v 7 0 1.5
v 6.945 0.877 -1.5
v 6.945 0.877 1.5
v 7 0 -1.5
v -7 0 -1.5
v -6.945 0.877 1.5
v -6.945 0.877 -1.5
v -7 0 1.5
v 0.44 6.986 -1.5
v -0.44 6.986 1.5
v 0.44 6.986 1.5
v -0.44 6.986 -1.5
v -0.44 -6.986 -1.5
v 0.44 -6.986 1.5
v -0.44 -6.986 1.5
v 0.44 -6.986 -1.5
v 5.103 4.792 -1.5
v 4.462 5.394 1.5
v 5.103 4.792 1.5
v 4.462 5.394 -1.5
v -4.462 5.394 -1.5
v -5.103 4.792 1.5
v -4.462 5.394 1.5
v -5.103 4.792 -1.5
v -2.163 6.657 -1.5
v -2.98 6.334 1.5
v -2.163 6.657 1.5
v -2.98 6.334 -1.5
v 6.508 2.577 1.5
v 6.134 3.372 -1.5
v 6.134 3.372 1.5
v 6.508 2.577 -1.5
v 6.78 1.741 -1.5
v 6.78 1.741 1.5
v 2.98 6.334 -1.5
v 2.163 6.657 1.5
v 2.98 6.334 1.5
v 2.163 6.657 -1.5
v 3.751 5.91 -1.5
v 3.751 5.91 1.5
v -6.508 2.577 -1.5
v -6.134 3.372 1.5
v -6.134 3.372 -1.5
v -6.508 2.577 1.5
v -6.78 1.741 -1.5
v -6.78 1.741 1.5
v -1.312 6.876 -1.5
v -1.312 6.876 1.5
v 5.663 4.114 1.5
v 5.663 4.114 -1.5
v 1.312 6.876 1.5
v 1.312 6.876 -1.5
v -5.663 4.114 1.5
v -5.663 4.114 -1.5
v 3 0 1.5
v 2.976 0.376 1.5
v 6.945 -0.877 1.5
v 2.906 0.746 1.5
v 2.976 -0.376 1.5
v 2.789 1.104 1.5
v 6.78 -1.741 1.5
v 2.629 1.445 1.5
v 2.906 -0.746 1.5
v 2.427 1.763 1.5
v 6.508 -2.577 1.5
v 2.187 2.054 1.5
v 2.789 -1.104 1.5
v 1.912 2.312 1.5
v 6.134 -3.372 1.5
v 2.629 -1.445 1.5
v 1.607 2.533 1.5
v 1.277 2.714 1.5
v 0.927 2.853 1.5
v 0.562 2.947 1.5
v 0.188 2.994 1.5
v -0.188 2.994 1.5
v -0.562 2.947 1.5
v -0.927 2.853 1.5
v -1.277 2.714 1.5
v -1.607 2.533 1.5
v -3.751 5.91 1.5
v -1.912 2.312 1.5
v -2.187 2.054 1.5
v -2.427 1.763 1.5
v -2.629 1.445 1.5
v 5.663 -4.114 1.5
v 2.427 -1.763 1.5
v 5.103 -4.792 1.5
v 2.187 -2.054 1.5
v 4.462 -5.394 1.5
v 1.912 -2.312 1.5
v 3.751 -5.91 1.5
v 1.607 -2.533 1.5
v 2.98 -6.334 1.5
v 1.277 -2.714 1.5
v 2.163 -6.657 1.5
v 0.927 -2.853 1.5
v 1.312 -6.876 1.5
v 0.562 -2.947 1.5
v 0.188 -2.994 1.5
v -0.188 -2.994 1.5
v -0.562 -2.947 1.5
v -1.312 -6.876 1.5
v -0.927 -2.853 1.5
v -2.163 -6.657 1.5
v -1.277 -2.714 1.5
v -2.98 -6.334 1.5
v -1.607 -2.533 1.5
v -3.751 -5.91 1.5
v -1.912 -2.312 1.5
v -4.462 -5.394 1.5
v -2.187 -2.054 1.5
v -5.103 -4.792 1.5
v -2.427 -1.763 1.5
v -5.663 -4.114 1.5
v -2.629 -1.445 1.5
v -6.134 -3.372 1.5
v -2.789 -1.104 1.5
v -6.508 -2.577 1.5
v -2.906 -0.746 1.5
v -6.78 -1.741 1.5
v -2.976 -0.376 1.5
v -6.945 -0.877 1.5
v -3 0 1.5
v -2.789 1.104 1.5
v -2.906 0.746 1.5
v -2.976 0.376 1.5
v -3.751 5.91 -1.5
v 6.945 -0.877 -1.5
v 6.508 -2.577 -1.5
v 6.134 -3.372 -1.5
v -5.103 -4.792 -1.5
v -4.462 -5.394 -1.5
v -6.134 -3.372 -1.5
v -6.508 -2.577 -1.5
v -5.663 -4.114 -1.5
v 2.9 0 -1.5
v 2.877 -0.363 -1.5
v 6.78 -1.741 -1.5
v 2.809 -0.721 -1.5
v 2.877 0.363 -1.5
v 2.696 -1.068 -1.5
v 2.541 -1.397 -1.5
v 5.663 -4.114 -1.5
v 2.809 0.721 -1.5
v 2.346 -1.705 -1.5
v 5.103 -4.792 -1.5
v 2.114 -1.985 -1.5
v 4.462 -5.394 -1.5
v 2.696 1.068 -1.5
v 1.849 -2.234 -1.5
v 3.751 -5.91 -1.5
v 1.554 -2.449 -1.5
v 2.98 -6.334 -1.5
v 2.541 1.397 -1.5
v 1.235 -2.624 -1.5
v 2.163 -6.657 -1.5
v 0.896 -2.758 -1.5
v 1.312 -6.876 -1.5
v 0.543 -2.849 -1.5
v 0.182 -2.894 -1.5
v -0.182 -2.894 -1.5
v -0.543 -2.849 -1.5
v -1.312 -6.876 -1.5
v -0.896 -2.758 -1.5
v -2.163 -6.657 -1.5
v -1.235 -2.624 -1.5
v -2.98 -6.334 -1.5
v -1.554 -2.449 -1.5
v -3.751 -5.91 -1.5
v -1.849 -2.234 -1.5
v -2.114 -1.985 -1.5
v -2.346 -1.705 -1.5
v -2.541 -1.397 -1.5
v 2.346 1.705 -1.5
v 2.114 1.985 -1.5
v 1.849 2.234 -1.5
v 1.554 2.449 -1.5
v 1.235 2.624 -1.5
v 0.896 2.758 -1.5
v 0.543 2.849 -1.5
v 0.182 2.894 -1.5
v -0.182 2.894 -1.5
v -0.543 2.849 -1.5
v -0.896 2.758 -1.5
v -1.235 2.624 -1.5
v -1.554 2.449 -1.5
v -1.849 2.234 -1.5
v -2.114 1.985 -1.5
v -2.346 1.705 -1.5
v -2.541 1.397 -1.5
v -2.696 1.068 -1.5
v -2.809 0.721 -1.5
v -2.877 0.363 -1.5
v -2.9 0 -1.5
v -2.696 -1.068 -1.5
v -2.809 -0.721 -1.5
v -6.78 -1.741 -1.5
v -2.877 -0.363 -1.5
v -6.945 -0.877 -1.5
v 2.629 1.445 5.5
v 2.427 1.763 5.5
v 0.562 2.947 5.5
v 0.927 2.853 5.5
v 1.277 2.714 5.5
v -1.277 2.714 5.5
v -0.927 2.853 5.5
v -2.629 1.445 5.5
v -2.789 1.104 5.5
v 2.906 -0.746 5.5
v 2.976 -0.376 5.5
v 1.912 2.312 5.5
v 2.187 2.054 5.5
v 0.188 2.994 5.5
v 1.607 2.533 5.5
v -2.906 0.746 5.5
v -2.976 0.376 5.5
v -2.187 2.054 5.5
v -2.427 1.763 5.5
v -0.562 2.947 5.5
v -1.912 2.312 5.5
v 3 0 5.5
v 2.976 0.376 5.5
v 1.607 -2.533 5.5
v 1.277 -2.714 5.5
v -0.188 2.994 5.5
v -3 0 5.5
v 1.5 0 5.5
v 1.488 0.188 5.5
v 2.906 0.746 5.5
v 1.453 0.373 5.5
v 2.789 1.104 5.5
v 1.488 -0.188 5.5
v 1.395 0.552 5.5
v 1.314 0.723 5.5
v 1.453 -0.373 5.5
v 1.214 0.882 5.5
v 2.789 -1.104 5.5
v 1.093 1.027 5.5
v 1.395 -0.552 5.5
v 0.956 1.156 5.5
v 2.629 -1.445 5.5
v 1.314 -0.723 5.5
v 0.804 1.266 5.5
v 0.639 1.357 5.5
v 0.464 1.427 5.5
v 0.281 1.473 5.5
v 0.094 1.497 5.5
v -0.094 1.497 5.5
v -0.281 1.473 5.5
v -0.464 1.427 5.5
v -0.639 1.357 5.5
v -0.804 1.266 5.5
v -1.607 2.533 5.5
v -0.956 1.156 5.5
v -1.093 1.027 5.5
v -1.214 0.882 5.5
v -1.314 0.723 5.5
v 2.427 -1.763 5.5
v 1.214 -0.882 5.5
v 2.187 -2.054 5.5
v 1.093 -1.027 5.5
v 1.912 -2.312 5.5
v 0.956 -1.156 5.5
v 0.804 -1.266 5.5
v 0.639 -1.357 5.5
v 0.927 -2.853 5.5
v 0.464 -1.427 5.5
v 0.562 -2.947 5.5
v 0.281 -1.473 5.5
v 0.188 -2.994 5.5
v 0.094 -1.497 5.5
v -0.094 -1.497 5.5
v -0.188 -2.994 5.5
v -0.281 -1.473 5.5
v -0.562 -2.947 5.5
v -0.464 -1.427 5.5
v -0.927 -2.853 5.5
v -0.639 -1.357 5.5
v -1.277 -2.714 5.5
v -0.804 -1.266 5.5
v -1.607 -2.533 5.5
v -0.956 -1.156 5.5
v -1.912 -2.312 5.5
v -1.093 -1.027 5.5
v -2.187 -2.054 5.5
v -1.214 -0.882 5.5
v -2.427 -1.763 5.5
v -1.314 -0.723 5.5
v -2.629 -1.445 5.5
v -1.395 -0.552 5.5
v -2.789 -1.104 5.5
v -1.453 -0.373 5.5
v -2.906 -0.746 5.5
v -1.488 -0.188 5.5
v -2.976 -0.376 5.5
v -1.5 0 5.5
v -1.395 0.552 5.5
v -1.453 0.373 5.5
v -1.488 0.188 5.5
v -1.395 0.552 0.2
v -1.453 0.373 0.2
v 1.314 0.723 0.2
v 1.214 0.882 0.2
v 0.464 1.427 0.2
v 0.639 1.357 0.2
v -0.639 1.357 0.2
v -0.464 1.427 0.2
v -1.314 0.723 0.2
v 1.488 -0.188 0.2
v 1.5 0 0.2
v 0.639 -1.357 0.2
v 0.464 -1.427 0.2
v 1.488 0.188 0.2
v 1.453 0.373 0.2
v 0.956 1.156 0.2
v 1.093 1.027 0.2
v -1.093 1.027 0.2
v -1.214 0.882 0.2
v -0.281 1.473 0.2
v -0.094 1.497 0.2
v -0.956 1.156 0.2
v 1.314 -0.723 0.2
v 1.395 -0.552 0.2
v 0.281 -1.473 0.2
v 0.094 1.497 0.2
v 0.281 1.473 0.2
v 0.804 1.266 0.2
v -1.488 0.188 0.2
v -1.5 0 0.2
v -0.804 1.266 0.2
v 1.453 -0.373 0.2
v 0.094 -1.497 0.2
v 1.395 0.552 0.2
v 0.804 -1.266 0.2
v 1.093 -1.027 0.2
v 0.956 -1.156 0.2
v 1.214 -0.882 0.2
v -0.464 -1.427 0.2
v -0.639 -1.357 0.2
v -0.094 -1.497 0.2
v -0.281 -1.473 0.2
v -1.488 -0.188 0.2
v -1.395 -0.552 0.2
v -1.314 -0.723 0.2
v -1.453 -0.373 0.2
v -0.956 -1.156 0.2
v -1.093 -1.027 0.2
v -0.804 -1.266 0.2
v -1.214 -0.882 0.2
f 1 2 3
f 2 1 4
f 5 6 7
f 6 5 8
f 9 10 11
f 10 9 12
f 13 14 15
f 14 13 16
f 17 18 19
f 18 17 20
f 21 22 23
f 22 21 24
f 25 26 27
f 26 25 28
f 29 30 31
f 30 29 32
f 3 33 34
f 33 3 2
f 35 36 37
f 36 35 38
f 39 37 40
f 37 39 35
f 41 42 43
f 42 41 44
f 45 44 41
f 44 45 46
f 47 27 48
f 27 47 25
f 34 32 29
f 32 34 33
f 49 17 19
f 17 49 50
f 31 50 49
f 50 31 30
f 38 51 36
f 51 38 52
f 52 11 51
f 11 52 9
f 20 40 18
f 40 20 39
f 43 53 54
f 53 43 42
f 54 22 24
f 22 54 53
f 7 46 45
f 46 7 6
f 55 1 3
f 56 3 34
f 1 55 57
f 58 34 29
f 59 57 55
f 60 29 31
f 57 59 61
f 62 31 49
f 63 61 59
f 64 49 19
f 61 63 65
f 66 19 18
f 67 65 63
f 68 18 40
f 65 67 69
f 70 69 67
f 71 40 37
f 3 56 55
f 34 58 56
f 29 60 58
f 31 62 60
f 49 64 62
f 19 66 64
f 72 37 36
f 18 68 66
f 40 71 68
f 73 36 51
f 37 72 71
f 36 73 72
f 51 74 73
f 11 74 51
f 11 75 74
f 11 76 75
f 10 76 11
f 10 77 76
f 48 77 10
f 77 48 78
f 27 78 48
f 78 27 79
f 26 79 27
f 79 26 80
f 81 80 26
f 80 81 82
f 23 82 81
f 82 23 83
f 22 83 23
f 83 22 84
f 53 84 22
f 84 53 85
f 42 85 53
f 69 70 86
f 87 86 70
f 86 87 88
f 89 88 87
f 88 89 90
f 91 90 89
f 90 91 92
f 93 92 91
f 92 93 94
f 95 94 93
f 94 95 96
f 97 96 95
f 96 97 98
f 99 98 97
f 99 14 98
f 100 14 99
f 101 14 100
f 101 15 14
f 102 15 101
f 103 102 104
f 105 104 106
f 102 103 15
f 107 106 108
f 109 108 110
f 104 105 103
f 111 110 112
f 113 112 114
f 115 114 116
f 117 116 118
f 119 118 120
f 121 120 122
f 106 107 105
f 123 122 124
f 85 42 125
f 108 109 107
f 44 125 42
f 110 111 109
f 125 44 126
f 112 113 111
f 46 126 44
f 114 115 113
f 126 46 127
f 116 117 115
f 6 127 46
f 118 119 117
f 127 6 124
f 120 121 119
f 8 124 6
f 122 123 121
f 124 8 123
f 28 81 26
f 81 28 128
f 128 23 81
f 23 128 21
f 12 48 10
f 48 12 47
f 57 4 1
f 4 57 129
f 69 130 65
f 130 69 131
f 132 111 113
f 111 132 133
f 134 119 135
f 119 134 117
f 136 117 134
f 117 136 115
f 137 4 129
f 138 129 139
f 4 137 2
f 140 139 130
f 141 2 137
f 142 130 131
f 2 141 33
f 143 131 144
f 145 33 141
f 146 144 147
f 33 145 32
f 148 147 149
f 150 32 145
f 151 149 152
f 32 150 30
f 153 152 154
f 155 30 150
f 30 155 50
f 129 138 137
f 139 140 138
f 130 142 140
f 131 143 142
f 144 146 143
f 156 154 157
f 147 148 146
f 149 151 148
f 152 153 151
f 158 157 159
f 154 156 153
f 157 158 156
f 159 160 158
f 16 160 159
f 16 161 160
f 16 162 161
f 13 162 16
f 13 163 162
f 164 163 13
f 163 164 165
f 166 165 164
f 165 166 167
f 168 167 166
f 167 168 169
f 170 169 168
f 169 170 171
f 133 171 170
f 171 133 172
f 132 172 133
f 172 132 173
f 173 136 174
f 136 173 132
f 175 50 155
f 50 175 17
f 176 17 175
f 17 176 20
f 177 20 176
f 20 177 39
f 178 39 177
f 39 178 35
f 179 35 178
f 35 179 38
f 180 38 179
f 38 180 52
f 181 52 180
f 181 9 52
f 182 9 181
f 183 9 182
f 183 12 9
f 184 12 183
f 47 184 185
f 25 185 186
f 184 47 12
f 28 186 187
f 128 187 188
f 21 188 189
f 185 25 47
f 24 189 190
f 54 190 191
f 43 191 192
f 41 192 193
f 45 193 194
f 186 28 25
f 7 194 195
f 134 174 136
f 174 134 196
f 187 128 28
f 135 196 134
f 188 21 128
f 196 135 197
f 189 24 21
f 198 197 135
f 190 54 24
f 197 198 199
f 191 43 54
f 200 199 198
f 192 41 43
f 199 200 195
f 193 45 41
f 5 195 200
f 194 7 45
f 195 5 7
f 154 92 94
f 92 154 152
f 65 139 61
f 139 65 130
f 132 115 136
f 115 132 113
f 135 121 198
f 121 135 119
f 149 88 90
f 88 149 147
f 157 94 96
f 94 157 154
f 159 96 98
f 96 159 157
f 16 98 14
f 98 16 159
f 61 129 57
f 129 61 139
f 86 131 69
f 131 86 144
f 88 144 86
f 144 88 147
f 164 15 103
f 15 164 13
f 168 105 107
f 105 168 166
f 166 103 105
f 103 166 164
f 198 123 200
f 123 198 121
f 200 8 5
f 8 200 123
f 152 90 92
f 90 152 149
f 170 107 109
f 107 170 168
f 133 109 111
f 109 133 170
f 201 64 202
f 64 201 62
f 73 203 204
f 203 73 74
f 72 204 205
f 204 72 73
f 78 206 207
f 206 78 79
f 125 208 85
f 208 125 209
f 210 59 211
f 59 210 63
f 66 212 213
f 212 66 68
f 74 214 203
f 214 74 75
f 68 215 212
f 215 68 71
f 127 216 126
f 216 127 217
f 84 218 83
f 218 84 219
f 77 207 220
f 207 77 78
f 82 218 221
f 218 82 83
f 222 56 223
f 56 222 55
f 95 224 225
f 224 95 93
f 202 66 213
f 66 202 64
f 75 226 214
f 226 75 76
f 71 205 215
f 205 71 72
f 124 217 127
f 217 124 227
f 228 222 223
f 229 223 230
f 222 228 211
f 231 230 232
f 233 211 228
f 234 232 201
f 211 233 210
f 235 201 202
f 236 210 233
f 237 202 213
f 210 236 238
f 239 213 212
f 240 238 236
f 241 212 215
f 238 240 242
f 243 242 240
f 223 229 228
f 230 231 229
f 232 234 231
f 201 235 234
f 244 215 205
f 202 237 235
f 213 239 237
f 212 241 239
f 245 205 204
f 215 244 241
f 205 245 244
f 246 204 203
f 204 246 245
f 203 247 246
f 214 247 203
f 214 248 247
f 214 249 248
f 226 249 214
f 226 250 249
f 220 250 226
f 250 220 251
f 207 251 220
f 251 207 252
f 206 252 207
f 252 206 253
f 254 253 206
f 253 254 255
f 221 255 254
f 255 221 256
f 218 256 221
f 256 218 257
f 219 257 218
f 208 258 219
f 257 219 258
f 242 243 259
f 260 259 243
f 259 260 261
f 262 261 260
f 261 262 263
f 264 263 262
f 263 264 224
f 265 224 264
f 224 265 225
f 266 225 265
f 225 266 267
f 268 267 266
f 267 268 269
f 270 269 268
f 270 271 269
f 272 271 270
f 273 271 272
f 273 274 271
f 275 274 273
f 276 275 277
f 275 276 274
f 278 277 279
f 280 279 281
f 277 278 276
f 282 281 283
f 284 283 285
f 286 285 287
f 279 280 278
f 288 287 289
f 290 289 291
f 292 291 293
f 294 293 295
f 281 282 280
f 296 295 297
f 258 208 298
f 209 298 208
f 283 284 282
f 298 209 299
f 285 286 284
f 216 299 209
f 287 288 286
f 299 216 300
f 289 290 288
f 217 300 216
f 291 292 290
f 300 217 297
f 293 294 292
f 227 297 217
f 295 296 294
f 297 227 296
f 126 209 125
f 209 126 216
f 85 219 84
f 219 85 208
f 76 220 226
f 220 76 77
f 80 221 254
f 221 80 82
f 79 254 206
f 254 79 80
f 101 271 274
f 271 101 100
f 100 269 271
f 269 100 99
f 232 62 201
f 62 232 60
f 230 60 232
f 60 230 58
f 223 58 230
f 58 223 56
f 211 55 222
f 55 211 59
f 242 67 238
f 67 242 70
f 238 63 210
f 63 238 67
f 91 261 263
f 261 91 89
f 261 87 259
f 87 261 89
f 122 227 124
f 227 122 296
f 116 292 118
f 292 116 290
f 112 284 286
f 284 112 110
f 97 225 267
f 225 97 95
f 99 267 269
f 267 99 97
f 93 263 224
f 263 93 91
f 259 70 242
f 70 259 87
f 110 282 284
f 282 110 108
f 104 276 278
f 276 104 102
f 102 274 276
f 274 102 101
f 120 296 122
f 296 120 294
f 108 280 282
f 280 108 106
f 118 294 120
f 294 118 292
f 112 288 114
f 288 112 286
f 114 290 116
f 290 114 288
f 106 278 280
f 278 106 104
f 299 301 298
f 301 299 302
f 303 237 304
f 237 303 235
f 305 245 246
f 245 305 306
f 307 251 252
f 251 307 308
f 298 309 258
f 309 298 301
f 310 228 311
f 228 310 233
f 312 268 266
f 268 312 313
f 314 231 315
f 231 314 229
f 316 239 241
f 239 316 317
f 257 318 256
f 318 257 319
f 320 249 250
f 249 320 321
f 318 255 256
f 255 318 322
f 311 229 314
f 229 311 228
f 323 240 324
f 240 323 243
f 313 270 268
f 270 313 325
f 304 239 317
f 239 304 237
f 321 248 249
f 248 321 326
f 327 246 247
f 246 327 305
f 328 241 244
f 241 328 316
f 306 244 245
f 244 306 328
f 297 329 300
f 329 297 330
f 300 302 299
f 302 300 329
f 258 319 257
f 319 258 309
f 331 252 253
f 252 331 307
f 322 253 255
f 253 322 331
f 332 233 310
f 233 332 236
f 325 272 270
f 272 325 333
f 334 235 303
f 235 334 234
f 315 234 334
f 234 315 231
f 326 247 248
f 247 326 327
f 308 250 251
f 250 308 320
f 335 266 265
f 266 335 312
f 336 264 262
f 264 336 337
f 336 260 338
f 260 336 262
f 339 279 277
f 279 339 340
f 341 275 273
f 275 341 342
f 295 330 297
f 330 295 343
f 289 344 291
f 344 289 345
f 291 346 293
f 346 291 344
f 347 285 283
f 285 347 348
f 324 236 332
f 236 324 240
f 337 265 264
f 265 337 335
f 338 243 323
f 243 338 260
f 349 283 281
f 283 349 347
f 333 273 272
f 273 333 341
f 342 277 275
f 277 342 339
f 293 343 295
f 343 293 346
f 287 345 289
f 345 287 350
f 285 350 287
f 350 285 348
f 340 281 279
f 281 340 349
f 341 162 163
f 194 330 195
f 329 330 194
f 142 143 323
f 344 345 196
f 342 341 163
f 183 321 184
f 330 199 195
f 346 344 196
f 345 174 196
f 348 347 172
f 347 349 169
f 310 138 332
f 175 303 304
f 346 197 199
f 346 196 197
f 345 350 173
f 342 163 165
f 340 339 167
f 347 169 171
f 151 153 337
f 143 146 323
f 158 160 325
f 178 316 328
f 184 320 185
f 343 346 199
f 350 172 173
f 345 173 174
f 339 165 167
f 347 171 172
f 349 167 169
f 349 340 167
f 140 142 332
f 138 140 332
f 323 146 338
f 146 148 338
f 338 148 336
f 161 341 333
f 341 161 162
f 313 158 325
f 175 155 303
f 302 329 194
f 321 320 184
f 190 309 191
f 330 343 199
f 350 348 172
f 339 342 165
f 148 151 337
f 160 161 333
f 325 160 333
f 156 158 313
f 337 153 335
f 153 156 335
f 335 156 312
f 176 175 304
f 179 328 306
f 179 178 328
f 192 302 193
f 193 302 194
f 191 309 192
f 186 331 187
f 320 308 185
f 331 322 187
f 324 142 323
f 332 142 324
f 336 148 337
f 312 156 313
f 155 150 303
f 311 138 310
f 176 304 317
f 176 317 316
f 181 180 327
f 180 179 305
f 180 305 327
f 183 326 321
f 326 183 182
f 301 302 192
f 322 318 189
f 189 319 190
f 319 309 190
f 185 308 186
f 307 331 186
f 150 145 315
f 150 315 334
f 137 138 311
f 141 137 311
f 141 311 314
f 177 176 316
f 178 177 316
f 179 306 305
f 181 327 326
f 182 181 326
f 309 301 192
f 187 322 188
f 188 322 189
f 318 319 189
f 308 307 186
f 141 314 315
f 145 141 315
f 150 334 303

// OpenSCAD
$fn = 50;


difference() {
	union() {
		translate(v = [0, 0, -1.5000000000]) {
			rotate(a = [0, 0, 0]) {
				cylinder(h = 3, r = 7.0000000000);
			}
		}
		translate(v = [0, 0, -1.5000000000]) {
			rotate(a = [0, 0, 0]) {
				cylinder(h = 7, r = 3.0000000000);
			}
		}
	}
	union() {
		translate(v = [0, 0, -125.0000000000]) {
			rotate(a = [0, 0, 0]) {
				cylinder(h = 250, r = 1.5000000000);
			}
		}
		#translate(v = [0, 0, 0.2000000000]) {
			rotate(a = [0, 180, 0]) {
				cylinder(h = 1.7000000000, r1 = 1.5000000000, r2 = 2.9000000000);
			}
		}
		#translate(v = [0, 0, 5.5000000000]) {
			rotate(a = [0, 180, 0]) {
				cylinder(h = 7, r = 1.5000000000);
			}
		}
	}
}
